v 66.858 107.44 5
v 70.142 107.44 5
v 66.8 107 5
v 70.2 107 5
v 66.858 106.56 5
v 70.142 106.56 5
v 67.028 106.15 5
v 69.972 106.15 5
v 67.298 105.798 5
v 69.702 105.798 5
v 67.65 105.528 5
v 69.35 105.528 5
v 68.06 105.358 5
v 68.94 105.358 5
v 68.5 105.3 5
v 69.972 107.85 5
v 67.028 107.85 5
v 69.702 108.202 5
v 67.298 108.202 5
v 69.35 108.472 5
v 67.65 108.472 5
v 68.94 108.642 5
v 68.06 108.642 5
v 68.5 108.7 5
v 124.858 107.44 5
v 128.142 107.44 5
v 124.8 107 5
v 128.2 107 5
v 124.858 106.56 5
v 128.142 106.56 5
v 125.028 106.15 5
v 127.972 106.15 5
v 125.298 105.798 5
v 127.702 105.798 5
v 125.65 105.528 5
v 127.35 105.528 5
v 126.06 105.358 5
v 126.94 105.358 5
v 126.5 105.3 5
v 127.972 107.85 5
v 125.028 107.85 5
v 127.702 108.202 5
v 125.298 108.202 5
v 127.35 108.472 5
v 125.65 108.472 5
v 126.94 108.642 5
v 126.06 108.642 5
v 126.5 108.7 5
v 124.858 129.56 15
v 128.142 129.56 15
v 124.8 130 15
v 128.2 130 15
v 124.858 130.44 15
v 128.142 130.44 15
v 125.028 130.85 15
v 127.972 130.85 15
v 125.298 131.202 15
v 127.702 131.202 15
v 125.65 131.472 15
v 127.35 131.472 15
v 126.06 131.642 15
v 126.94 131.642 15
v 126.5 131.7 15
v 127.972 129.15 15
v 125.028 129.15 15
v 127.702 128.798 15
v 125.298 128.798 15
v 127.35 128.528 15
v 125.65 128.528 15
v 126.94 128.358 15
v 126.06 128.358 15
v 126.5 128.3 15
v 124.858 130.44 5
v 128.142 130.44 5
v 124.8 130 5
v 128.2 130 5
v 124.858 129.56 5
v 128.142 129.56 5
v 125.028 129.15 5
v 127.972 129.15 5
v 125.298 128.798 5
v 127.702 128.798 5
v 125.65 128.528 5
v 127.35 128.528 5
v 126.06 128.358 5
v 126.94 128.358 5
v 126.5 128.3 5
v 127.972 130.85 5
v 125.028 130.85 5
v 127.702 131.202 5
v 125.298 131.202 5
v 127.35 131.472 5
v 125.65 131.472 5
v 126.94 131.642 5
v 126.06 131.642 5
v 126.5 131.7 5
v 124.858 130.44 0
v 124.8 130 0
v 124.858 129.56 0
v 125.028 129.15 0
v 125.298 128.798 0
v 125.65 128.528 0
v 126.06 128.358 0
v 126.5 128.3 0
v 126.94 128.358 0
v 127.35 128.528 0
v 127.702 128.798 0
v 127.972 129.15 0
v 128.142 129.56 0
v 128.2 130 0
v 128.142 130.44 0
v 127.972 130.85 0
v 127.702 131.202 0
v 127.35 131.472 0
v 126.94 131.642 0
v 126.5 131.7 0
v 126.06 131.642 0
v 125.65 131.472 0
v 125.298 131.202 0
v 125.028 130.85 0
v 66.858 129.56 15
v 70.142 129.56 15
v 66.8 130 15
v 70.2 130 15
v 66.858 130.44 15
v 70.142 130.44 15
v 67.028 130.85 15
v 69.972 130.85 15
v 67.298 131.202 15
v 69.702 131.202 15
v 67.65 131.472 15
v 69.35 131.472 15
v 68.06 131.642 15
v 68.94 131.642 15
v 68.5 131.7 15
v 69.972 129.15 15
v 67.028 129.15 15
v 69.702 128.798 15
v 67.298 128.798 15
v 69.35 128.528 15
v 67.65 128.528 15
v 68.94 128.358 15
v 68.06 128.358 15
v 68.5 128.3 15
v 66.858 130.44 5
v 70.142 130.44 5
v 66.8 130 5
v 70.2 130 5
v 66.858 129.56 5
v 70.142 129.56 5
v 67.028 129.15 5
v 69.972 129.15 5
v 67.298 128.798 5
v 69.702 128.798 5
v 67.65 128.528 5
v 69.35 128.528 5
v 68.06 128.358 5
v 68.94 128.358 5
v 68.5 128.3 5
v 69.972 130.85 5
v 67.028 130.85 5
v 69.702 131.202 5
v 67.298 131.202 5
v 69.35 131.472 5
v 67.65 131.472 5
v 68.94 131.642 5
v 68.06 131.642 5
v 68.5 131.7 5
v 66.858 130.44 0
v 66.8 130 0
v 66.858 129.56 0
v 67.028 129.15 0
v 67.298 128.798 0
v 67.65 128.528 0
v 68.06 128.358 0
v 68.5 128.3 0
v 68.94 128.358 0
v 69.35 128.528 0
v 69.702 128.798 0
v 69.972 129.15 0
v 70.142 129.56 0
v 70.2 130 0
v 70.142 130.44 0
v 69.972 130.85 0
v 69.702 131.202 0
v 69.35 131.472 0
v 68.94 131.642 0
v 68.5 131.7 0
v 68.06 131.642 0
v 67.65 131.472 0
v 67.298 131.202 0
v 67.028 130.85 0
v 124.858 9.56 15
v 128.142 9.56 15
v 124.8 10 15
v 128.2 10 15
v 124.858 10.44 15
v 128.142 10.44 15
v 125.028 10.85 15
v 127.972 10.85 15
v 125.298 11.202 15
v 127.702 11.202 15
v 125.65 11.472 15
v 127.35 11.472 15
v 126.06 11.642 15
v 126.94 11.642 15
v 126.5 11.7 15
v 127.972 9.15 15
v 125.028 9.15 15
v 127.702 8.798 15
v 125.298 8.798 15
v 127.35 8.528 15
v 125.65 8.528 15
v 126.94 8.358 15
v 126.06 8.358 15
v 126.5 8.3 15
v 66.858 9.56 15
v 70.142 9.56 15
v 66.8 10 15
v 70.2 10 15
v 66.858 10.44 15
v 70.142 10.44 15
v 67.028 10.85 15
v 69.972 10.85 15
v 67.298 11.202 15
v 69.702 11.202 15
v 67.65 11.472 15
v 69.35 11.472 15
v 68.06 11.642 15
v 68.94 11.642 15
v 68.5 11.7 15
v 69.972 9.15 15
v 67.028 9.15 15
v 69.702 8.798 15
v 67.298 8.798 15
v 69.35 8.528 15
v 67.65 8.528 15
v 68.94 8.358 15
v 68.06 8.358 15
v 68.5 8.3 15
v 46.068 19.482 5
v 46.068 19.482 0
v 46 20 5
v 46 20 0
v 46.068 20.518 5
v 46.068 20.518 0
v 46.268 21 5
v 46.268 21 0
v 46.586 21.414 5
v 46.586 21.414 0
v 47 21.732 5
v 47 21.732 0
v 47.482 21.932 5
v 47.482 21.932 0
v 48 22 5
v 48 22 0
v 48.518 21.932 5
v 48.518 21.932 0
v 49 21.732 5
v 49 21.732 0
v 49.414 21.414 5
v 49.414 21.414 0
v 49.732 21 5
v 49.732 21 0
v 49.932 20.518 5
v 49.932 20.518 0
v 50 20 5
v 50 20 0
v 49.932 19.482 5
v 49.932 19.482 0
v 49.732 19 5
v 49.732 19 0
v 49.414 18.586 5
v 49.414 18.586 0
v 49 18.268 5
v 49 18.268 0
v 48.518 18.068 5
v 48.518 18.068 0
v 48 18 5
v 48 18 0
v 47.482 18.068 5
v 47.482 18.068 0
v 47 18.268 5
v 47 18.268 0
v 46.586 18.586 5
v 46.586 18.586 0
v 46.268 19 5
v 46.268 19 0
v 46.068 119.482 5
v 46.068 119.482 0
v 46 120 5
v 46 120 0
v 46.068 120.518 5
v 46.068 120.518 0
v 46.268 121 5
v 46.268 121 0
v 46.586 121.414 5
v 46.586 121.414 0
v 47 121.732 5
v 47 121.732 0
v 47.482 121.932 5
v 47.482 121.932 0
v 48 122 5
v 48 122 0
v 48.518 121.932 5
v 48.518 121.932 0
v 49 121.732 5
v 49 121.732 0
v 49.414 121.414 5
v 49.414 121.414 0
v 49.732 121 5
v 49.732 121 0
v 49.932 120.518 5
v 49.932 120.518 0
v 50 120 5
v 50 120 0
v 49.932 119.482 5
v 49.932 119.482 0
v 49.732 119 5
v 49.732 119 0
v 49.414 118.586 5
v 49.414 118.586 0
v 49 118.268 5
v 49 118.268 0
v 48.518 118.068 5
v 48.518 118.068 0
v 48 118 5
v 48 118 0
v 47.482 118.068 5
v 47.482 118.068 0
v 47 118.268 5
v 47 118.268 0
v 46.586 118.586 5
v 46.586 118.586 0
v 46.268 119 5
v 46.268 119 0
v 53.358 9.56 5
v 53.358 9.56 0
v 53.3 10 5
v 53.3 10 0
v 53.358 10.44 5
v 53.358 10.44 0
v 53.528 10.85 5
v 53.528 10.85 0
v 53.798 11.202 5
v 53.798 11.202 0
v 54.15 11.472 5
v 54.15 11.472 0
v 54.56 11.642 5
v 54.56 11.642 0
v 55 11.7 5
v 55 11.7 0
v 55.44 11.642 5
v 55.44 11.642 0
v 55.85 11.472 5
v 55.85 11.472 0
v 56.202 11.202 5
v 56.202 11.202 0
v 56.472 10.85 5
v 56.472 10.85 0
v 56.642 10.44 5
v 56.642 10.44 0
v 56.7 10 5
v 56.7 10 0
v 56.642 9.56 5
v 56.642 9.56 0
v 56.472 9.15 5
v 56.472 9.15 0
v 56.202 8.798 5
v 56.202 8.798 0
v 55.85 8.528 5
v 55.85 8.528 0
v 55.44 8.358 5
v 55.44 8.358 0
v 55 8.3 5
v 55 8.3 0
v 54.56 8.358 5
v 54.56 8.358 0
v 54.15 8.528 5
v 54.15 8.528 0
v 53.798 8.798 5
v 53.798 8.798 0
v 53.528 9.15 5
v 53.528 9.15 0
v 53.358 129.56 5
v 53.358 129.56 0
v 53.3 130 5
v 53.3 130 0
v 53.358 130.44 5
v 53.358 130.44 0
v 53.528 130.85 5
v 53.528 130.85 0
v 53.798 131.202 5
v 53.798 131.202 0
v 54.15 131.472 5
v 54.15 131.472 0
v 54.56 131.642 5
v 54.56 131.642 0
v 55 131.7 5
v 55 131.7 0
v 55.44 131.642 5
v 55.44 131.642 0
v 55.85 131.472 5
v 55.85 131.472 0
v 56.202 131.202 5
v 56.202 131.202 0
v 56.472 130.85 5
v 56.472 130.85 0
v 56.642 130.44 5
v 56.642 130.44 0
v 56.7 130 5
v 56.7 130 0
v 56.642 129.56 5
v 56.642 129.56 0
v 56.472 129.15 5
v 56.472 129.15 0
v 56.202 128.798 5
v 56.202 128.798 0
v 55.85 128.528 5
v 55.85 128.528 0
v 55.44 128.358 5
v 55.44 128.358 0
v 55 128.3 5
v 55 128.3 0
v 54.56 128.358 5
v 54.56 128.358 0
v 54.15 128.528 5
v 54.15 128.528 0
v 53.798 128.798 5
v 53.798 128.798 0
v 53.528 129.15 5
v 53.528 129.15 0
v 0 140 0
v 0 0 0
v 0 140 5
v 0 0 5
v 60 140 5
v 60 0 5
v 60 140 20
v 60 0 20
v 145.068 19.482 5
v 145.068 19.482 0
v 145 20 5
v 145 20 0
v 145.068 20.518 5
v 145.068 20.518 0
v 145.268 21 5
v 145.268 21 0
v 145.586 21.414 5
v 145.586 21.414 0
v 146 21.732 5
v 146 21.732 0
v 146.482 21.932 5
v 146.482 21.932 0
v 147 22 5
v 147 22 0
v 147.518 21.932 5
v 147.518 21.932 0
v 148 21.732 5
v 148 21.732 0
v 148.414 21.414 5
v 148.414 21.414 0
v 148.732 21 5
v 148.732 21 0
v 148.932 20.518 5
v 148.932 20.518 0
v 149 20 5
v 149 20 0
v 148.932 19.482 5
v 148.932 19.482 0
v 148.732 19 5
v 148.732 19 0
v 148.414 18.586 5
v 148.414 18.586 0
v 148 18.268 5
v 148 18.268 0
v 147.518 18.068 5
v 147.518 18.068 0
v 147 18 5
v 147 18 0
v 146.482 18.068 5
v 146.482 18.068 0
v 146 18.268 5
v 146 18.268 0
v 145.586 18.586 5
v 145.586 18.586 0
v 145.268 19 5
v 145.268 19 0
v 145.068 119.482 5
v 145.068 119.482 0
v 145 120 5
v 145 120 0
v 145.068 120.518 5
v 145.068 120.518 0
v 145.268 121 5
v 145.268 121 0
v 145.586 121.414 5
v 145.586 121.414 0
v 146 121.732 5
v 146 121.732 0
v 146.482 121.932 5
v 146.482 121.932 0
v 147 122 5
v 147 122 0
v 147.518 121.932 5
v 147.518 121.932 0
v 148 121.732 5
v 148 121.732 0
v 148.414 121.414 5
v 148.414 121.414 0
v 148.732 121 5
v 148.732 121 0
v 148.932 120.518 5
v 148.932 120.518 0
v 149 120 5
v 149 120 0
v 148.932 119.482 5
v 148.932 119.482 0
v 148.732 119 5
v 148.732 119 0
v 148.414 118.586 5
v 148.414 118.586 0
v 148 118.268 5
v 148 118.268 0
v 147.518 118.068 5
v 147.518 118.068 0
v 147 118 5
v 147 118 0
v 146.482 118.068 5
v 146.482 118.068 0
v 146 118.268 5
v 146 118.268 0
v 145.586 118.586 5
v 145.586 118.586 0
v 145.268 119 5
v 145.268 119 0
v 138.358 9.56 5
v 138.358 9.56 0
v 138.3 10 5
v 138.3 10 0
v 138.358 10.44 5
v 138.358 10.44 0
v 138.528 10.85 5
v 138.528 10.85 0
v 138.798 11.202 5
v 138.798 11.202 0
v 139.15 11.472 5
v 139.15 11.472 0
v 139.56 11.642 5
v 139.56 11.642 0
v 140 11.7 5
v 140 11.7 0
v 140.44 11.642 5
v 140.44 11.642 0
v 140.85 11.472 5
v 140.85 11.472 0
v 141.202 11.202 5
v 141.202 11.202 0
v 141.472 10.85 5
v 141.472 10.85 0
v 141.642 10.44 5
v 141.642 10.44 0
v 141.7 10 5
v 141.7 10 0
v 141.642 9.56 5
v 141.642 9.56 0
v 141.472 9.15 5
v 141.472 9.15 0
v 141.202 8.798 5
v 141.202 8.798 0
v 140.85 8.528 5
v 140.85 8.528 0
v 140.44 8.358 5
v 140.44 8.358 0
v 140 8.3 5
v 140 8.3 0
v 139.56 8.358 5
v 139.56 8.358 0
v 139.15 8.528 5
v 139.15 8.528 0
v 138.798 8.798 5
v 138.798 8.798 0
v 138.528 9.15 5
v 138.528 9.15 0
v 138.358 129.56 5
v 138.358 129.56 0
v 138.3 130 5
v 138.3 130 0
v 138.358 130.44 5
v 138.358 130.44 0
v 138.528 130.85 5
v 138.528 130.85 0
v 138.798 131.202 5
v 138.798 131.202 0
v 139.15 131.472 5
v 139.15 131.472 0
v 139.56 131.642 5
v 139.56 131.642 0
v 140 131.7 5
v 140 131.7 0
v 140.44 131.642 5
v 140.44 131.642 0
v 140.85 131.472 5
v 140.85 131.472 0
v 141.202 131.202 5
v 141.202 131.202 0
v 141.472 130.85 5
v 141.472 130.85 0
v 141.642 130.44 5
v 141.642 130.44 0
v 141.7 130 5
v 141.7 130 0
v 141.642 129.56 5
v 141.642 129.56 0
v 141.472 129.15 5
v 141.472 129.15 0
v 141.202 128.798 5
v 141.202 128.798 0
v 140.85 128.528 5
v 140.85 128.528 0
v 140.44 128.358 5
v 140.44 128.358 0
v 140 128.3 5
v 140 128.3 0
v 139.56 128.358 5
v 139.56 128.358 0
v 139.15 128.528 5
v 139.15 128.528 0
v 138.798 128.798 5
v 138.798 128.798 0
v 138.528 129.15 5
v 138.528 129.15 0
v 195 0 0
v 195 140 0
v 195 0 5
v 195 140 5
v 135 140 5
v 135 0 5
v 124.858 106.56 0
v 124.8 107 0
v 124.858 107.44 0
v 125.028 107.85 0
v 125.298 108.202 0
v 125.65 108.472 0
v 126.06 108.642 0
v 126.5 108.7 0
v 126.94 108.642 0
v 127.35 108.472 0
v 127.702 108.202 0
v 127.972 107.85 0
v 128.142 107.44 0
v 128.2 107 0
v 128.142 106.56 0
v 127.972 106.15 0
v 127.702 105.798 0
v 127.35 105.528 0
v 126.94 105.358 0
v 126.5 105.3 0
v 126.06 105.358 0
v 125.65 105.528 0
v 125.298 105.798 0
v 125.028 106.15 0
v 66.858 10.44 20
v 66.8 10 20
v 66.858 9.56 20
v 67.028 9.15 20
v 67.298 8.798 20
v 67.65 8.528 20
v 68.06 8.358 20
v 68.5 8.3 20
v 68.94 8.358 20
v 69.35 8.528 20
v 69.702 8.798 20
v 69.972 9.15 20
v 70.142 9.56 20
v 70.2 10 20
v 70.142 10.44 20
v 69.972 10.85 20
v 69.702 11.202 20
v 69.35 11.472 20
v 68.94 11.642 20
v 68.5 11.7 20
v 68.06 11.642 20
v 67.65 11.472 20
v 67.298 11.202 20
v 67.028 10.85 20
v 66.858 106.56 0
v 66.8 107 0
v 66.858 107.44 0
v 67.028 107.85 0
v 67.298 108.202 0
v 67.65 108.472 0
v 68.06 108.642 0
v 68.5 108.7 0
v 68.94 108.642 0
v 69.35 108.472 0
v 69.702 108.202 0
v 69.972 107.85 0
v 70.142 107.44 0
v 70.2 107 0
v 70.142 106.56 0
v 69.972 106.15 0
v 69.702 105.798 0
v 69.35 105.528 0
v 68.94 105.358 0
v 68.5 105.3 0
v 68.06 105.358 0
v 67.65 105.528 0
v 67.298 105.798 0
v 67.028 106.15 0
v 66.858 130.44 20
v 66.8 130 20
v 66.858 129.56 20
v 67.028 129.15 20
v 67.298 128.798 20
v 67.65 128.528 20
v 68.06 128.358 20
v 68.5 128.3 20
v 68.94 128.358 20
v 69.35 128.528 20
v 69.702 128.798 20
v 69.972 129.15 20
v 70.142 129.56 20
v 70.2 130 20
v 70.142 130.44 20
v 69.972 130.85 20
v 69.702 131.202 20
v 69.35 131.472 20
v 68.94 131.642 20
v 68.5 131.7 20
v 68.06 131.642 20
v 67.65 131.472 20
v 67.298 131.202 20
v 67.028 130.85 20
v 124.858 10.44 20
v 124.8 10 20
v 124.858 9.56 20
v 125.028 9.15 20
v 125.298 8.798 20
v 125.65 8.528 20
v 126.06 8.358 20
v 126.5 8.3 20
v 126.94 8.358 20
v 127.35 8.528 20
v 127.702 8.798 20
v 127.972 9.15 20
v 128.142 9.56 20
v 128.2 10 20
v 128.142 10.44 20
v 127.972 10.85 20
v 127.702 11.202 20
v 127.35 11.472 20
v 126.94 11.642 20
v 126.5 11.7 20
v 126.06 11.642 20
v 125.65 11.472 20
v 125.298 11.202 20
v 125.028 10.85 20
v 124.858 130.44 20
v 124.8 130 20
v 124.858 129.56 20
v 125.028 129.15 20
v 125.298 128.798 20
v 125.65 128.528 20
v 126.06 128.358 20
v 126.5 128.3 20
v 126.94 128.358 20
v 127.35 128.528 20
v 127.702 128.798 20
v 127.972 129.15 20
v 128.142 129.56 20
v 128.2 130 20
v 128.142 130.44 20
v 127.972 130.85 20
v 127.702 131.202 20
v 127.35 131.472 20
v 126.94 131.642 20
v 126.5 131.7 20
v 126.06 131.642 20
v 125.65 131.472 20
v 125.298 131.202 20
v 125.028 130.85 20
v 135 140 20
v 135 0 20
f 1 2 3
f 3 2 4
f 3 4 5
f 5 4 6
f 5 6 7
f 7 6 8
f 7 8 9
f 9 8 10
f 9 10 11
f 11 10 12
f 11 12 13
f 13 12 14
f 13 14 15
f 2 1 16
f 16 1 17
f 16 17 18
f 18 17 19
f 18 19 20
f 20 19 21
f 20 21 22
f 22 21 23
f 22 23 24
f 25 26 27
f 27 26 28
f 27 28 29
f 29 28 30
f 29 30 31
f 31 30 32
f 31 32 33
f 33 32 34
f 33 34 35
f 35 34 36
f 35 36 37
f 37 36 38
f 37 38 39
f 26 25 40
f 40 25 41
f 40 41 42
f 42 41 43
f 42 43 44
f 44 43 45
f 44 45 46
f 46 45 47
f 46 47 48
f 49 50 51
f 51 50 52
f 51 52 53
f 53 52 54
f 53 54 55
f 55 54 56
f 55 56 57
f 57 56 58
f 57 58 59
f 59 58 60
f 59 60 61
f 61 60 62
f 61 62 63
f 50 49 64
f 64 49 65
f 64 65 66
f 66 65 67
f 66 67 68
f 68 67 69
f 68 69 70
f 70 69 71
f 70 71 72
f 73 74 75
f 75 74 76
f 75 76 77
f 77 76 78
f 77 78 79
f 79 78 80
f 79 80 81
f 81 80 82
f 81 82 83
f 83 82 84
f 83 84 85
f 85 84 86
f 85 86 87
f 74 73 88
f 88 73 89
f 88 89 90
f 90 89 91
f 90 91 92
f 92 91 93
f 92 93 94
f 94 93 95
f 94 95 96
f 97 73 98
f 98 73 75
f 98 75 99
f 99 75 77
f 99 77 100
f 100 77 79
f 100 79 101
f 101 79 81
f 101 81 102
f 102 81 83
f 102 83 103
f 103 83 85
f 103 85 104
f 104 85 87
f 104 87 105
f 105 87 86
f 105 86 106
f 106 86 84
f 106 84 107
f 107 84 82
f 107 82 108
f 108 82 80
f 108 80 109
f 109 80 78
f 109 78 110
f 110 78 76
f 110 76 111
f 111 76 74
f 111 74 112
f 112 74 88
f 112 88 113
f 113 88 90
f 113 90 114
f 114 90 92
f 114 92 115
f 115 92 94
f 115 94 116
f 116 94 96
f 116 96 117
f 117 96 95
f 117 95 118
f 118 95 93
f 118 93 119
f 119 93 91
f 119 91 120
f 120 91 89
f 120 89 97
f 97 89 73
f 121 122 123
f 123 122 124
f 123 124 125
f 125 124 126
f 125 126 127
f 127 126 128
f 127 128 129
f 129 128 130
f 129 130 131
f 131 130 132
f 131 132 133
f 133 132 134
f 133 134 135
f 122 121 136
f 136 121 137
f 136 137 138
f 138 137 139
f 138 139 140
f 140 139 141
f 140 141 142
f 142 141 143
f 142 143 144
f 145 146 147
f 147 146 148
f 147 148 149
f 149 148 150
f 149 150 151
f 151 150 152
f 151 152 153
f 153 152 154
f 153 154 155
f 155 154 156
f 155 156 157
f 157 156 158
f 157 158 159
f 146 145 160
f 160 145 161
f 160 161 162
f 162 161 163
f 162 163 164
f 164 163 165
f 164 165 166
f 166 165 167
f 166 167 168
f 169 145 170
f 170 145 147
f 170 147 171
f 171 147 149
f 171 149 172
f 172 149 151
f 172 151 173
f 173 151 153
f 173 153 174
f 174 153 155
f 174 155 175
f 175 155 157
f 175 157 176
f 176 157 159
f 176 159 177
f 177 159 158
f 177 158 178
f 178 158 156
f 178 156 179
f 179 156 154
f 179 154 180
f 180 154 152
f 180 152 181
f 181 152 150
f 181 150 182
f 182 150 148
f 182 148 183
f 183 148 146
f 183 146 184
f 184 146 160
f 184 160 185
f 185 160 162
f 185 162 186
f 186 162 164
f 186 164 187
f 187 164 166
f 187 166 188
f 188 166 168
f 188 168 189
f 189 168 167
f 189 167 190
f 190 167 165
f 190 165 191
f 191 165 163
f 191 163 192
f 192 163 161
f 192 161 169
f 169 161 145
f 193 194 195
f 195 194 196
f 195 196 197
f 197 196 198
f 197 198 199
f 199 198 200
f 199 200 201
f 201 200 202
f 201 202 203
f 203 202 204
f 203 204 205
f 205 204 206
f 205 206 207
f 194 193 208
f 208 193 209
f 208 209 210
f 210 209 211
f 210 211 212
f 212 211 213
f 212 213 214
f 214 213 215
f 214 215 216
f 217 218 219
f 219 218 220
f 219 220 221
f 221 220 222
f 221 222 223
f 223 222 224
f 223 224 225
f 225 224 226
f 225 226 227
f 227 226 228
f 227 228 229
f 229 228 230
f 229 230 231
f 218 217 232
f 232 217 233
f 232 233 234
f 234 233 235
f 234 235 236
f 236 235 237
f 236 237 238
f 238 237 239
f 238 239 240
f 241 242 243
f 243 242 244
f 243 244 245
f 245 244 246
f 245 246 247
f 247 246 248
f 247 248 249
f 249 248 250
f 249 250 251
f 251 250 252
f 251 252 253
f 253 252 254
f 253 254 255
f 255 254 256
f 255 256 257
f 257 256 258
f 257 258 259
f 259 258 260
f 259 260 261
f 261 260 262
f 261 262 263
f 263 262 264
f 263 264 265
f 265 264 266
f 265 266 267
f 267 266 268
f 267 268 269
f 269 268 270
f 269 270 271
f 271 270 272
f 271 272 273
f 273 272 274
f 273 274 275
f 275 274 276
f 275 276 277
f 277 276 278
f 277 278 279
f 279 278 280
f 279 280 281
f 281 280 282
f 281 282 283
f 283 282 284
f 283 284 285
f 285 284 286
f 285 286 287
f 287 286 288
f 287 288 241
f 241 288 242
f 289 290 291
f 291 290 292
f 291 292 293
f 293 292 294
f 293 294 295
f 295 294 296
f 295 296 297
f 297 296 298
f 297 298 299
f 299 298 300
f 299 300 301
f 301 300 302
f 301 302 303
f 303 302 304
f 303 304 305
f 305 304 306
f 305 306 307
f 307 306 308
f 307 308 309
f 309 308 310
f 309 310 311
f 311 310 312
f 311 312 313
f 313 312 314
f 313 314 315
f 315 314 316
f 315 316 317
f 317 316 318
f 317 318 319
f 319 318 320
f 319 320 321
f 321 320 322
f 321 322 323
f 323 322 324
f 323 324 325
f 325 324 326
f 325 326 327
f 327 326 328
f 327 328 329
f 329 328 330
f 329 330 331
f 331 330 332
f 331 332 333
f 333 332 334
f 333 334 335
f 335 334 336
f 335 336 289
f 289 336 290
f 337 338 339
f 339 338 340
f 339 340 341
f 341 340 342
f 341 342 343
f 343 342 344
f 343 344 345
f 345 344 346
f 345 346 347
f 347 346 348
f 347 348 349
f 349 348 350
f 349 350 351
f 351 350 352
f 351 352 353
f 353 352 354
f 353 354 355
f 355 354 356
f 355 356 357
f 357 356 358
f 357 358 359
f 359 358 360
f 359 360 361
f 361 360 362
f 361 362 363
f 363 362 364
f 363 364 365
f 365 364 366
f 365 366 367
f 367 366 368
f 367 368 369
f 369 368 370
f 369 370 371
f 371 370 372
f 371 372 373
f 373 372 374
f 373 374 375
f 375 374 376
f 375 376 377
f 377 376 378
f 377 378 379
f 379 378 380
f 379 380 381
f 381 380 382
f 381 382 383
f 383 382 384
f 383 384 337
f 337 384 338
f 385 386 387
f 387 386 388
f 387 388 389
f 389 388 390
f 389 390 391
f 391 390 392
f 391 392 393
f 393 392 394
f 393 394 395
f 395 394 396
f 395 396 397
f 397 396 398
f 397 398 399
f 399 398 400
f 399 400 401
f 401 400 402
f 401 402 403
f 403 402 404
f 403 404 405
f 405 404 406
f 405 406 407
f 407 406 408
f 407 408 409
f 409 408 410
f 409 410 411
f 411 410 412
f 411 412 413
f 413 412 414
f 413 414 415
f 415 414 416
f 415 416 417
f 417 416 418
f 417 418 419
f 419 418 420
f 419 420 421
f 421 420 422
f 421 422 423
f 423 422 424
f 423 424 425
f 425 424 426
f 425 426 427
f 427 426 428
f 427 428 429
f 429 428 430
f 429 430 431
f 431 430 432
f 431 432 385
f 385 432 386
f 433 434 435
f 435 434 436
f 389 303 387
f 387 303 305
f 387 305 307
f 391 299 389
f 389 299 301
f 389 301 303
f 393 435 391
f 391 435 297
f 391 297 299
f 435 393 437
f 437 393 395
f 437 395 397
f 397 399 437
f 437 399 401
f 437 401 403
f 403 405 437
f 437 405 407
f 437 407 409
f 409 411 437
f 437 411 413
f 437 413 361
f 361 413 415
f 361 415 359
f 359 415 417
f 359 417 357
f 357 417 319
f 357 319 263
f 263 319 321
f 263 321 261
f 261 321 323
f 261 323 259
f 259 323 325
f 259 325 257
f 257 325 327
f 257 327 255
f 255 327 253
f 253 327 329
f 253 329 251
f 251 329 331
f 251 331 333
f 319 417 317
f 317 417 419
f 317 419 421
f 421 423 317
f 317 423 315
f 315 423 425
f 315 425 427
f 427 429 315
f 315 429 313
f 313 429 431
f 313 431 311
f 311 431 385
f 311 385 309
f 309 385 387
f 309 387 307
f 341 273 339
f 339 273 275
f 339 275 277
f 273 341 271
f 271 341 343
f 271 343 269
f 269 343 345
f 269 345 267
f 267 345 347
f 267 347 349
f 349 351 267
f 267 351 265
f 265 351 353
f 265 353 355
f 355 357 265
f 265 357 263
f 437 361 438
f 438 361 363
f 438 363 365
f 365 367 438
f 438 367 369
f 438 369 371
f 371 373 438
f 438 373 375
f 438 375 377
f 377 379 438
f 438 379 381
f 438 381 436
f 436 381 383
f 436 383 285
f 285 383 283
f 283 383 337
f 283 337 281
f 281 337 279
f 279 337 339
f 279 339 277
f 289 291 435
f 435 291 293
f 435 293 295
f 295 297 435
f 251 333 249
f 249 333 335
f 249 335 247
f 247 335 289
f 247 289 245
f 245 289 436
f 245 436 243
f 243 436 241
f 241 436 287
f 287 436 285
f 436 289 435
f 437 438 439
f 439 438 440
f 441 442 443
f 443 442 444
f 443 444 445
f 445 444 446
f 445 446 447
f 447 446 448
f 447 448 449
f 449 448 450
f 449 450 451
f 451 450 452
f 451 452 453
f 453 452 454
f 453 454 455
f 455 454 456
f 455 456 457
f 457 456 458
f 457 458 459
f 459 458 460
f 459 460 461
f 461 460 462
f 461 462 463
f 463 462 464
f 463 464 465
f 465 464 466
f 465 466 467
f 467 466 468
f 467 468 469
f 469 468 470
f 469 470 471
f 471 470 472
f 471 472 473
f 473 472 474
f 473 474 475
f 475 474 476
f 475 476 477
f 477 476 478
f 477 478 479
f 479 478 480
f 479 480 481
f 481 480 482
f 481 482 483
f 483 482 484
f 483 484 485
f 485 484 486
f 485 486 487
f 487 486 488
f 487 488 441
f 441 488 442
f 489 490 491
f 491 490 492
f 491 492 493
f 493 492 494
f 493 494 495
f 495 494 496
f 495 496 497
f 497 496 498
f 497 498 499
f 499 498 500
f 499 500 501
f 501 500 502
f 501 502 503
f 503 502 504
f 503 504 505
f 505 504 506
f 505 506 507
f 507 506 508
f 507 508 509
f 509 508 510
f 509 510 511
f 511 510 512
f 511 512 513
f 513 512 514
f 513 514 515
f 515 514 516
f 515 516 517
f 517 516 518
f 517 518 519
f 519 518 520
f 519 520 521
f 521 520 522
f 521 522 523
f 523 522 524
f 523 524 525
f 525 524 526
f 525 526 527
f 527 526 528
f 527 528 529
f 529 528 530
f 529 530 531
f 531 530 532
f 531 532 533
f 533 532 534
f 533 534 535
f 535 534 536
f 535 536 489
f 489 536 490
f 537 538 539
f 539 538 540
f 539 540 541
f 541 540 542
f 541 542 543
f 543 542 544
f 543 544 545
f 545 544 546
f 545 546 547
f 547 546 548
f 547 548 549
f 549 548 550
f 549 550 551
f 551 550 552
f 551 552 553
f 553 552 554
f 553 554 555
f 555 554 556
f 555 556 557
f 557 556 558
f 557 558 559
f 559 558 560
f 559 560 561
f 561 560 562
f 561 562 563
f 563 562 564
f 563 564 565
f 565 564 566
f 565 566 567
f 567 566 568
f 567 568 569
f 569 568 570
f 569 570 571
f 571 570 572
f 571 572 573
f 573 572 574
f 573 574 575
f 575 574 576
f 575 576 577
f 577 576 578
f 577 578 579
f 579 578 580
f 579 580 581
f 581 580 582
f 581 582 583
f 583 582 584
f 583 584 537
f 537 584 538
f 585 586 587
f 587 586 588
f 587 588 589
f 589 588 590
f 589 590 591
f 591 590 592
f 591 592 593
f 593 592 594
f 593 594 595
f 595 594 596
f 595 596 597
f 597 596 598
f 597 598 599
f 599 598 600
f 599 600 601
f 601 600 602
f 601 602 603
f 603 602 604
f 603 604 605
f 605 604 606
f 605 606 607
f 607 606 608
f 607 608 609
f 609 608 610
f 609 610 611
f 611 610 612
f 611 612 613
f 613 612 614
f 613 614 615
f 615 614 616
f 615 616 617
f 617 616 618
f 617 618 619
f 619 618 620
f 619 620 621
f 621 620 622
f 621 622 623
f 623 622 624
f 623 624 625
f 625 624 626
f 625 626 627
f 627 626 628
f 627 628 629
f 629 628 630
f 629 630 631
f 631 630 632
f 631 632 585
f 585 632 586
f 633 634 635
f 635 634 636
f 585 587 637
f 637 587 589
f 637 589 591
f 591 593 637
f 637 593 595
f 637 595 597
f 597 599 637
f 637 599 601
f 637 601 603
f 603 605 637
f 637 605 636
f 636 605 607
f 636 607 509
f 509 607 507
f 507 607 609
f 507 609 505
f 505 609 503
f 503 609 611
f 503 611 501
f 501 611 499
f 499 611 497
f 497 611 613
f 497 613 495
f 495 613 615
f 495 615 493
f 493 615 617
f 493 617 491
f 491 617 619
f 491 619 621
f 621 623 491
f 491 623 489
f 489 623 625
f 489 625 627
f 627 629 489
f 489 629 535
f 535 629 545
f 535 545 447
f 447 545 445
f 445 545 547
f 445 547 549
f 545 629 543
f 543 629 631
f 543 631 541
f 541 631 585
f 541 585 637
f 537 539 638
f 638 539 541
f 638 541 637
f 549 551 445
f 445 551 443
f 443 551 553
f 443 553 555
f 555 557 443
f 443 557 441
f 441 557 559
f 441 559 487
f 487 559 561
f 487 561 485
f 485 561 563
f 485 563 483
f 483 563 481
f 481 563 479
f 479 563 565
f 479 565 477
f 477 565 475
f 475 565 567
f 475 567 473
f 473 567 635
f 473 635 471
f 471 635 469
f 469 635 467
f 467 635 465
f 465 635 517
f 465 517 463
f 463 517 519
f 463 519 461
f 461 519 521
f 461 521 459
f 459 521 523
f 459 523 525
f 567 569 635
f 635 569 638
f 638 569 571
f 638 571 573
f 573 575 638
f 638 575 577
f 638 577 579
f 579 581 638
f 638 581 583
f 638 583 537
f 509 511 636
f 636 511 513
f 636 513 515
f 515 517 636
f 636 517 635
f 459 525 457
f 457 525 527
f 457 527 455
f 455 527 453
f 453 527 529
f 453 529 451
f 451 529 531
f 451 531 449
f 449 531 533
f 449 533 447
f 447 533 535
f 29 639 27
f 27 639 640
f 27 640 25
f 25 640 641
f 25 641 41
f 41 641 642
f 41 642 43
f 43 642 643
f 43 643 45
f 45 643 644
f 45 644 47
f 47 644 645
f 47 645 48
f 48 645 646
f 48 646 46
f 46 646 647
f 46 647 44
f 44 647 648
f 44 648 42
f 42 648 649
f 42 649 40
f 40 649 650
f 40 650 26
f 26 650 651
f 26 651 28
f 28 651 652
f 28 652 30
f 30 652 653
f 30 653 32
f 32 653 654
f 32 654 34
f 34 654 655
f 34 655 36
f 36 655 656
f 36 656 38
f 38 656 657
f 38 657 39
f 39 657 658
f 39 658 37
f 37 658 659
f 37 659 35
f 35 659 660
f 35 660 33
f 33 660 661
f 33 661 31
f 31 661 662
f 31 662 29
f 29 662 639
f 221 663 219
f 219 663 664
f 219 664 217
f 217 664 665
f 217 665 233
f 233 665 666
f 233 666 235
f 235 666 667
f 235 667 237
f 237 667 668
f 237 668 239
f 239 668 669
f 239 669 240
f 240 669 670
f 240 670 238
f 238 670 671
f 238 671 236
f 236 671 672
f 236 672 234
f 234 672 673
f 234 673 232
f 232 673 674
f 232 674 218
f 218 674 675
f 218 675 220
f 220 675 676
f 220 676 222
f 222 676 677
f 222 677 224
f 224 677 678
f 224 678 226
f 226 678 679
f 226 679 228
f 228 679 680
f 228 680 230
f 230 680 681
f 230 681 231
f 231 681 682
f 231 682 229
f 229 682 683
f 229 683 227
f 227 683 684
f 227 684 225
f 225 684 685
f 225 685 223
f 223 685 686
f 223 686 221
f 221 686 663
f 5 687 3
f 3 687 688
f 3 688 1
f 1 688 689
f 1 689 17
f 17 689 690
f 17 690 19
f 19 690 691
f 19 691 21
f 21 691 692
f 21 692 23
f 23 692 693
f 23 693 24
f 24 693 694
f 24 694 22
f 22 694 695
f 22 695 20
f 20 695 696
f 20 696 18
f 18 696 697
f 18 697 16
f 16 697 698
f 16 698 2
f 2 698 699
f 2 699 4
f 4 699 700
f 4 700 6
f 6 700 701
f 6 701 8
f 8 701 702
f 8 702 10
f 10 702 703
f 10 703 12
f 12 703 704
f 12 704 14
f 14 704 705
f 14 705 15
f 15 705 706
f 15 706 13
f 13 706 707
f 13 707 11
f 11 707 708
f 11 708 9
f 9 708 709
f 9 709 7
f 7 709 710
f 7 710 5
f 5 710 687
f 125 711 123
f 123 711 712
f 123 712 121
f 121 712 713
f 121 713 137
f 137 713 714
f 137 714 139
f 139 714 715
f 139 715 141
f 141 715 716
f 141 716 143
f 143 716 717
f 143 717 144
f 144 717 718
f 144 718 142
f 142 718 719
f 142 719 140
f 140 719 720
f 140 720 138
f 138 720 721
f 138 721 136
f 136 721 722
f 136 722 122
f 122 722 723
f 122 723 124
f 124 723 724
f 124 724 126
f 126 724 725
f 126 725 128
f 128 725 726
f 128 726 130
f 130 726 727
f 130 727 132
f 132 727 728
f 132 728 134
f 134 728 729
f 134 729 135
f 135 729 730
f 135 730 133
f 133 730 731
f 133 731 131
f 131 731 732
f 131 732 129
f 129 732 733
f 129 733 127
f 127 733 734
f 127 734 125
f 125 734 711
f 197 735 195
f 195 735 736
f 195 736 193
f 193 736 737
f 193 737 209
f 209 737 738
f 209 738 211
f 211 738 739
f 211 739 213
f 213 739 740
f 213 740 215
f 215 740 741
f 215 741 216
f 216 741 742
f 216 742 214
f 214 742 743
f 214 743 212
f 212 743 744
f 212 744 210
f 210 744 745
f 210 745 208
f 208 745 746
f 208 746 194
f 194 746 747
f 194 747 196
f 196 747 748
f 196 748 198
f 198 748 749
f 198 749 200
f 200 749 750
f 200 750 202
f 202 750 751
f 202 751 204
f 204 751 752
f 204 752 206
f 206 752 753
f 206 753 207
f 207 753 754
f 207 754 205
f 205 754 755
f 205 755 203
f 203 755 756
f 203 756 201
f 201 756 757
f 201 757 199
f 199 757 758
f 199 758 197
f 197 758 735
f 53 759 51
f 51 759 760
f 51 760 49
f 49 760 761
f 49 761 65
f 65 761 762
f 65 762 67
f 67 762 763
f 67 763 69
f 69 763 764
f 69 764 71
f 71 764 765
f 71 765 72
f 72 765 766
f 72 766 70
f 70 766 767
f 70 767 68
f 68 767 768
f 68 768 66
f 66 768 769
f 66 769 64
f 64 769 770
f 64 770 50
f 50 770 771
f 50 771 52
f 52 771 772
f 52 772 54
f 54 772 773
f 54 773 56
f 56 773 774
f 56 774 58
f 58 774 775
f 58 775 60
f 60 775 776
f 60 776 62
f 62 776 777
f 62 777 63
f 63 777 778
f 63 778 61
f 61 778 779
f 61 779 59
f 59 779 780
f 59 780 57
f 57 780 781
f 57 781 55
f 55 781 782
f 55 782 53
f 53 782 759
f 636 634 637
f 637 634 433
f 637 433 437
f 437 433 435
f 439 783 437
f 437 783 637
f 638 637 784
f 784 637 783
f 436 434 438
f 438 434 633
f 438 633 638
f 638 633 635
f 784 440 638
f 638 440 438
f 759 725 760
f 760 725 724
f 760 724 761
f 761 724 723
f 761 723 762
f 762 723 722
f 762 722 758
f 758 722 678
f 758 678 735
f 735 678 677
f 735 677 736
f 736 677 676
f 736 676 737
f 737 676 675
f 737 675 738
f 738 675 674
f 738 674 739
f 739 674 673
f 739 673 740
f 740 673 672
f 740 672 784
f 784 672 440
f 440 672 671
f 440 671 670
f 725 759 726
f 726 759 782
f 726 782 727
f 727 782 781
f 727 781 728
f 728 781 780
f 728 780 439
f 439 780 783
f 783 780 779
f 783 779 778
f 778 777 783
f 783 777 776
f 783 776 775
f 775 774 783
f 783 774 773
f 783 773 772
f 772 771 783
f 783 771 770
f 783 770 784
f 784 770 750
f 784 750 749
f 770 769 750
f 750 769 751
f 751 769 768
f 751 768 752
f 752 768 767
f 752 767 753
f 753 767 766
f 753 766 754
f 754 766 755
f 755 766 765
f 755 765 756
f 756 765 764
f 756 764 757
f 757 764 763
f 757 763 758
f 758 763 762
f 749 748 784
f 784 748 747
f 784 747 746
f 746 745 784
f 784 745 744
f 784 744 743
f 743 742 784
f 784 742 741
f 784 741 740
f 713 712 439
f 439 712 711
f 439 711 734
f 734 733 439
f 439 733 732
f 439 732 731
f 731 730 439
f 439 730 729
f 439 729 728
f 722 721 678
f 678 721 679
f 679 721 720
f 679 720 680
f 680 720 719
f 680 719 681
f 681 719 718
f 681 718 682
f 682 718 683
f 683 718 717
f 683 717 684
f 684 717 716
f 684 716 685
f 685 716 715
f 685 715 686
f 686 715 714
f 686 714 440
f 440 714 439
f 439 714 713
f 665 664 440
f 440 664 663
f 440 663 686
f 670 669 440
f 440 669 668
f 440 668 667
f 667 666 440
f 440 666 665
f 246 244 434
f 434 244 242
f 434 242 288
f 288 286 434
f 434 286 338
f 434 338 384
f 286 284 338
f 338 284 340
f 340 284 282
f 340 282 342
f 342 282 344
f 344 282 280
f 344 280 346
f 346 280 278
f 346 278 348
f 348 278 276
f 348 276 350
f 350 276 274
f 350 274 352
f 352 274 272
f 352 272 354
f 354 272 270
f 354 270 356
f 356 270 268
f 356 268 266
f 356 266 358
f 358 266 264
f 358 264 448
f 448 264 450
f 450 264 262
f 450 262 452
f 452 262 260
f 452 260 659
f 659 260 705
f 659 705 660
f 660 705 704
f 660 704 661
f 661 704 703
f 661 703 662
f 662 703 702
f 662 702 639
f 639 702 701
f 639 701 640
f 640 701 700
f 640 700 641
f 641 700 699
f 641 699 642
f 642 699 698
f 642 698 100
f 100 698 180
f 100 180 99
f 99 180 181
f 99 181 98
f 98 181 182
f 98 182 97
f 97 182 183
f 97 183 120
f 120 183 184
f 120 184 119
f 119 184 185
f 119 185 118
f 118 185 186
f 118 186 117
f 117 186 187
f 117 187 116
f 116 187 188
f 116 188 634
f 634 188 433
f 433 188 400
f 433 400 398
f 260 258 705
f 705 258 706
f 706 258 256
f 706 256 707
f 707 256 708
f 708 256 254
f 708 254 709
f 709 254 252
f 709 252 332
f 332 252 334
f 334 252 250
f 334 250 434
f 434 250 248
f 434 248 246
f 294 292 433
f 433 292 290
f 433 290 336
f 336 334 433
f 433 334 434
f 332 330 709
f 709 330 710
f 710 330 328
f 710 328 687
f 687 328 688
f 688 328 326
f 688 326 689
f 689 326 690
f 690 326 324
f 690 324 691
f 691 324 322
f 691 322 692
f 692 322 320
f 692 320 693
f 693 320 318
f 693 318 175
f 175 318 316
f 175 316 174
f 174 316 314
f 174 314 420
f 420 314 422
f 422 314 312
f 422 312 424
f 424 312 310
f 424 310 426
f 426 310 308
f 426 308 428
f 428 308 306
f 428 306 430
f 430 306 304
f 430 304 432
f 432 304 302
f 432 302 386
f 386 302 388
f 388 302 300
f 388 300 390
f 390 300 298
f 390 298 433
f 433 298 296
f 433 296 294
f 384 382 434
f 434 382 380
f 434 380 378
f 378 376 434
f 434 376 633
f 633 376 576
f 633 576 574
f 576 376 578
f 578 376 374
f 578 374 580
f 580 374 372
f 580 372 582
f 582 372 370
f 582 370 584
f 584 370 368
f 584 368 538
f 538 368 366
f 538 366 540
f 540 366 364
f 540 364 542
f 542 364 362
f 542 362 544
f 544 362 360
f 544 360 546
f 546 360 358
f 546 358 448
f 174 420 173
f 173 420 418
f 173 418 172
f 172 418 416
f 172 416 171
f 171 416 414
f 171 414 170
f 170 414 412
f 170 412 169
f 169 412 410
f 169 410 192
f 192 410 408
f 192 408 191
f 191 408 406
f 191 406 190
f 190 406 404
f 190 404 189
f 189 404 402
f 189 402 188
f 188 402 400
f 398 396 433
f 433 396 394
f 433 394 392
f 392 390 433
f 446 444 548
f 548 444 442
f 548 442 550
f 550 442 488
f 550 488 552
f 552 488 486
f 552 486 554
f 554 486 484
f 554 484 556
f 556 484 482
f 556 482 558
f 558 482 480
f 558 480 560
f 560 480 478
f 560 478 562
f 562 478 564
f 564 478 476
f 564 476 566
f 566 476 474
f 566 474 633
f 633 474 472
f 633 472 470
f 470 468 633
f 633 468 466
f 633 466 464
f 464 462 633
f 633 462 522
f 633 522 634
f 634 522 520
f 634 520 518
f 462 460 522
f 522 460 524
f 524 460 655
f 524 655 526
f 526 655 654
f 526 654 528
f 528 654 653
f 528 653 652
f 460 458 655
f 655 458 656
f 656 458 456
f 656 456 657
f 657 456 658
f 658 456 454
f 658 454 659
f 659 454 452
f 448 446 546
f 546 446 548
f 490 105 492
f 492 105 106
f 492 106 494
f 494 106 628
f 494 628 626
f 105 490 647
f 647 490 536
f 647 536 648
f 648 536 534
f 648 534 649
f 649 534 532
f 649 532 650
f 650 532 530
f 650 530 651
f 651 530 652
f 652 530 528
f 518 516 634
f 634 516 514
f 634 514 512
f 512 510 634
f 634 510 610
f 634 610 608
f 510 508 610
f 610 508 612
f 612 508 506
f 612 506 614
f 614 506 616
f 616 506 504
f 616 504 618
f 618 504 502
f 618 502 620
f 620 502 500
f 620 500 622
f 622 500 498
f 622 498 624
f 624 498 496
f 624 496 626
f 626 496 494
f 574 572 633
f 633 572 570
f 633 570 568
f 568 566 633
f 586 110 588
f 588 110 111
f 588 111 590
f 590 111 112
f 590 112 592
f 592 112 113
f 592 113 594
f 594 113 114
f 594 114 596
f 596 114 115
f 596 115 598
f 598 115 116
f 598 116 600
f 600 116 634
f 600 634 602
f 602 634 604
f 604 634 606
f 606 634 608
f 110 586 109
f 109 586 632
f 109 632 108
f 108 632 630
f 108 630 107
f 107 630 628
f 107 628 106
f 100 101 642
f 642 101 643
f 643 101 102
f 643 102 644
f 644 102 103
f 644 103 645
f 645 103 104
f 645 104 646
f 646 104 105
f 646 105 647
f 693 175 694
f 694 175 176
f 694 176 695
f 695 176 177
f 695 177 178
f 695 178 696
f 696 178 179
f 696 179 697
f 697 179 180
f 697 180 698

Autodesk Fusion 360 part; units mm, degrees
sketch "Sketch1" plane through (0, 0, 0) normal (0, 0, 1) x (1, 0, 0)
  line L0 (0, 0) -> (195, 0)
  line L1 (195, 0) -> (195, 140)
  line L2 (195, 140) -> (0, 140)
  line L3 (0, 140) -> (0, 0)
  line L4 (60, 140) -> (60, 0)
  line L5 (135, 140) -> (135, 0)
  circle A0 centre (68.5, 10) radius 1.7
  circle A1 centre (126.5, 10) radius 1.7
  line L6 (97.5, 0) -> (97.5, 140) construction
  circle A2 centre (68.5, 130) radius 1.7
  circle A3 centre (126.5, 130) radius 1.7
  line L7 (68.5, 130) -> (68.5, 100) construction
  circle A4 centre (68.5, 107) radius 1.7
  line L8 (126.5, 130) -> (126.5, 100) construction
  circle A5 centre (126.5, 107) radius 1.7
  circle A6 centre (48, 120) radius 2
  line L9 (0, 70) -> (195, 70) construction
  circle A7 centre (48, 20) radius 2
  circle A8 centre (147, 120) radius 2
  circle A9 centre (147, 20) radius 2
  line L10 (50, 0) -> (50, 140) construction
  line L11 (145, 0) -> (145, 140) construction
  circle A10 centre (55, 10) radius 1.7
  circle A11 centre (55, 130) radius 1.7
  circle A12 centre (140, 130) radius 1.7
  circle A13 centre (140, 10) radius 1.7
  dimension "d1" = 140
  dimension "d3" = 60
  dimension "d4" = 60
  dimension "d5" = 3.4
  dimension "d6" = 10
  dimension "d7" = 3.4
  dimension "d10" = 58
  dimension "d11" = 3.4
  dimension "d12" = 3.4
  dimension "d13" = 58
  dimension "d14" = 10
  dimension "d23" = 3.4
  dimension "d24" = 23
  dimension "d25" = 3.4
  dimension "d26" = 23
  dimension "d27" = 4
  dimension "d28" = 4
  dimension "d29" = 100
  dimension "d30" = 4
  dimension "d31" = 4
  dimension "d32" = 100
  dimension "d42" = 75
  dimension "d43" = 50
  dimension "d44" = 50
  dimension "d46" = 3.4
  dimension "d47" = 10
  dimension "d48" = 3.4
  dimension "d49" = 10
  dimension "d50" = 3.4
  dimension "d51" = 10
  dimension "d52" = 3.4
  dimension "d53" = 10
  dimension "d54" = 5
  dimension "d55" = 5
  dimension "d56" = 5
  dimension "d57" = 5
extrude "Extrude1" add sketch "Sketch1" along normal blind 20 contours L0 L2 L4 L5
extrude "Extrude3" add sketch "Sketch1" along normal blind 5 contours L0 L2 L3 L4 | L0 L1 L2 L5
extrude "Extrude4" add sketch "Sketch1" along normal blind 15 contours A0 | A1
extrude "Extrude5" add sketch "Sketch1" along normal blind 10 from surface at 5 contours A2 | A3
extrude "Extrude6" add sketch "Sketch1" along normal blind 15 from surface at 5 contours A4 | A5
equation "d5 = m3_hole_diameter"
equation "d7 = m3_hole_diameter"
equation "d11 = m3_hole_diameter"
equation "d12 = m3_hole_diameter"
equation "d23 = m3_hole_diameter"
equation "d25 = m3_hole_diameter"
equation "d27 = zip_tie_hole_diameter"
equation "d28 = zip_tie_hole_diameter"
equation "d30 = zip_tie_hole_diameter"
equation "d31 = zip_tie_hole_diameter"
equation "zip_tie_hole_diameter = 4 mm"
equation "m3_hole_diameter = 3.4 mm"
equation "d46 = m3_hole_diameter"
equation "d48 = m3_hole_diameter"
equation "d50 = m3_hole_diameter"
equation "d52 = m3_hole_diameter"
